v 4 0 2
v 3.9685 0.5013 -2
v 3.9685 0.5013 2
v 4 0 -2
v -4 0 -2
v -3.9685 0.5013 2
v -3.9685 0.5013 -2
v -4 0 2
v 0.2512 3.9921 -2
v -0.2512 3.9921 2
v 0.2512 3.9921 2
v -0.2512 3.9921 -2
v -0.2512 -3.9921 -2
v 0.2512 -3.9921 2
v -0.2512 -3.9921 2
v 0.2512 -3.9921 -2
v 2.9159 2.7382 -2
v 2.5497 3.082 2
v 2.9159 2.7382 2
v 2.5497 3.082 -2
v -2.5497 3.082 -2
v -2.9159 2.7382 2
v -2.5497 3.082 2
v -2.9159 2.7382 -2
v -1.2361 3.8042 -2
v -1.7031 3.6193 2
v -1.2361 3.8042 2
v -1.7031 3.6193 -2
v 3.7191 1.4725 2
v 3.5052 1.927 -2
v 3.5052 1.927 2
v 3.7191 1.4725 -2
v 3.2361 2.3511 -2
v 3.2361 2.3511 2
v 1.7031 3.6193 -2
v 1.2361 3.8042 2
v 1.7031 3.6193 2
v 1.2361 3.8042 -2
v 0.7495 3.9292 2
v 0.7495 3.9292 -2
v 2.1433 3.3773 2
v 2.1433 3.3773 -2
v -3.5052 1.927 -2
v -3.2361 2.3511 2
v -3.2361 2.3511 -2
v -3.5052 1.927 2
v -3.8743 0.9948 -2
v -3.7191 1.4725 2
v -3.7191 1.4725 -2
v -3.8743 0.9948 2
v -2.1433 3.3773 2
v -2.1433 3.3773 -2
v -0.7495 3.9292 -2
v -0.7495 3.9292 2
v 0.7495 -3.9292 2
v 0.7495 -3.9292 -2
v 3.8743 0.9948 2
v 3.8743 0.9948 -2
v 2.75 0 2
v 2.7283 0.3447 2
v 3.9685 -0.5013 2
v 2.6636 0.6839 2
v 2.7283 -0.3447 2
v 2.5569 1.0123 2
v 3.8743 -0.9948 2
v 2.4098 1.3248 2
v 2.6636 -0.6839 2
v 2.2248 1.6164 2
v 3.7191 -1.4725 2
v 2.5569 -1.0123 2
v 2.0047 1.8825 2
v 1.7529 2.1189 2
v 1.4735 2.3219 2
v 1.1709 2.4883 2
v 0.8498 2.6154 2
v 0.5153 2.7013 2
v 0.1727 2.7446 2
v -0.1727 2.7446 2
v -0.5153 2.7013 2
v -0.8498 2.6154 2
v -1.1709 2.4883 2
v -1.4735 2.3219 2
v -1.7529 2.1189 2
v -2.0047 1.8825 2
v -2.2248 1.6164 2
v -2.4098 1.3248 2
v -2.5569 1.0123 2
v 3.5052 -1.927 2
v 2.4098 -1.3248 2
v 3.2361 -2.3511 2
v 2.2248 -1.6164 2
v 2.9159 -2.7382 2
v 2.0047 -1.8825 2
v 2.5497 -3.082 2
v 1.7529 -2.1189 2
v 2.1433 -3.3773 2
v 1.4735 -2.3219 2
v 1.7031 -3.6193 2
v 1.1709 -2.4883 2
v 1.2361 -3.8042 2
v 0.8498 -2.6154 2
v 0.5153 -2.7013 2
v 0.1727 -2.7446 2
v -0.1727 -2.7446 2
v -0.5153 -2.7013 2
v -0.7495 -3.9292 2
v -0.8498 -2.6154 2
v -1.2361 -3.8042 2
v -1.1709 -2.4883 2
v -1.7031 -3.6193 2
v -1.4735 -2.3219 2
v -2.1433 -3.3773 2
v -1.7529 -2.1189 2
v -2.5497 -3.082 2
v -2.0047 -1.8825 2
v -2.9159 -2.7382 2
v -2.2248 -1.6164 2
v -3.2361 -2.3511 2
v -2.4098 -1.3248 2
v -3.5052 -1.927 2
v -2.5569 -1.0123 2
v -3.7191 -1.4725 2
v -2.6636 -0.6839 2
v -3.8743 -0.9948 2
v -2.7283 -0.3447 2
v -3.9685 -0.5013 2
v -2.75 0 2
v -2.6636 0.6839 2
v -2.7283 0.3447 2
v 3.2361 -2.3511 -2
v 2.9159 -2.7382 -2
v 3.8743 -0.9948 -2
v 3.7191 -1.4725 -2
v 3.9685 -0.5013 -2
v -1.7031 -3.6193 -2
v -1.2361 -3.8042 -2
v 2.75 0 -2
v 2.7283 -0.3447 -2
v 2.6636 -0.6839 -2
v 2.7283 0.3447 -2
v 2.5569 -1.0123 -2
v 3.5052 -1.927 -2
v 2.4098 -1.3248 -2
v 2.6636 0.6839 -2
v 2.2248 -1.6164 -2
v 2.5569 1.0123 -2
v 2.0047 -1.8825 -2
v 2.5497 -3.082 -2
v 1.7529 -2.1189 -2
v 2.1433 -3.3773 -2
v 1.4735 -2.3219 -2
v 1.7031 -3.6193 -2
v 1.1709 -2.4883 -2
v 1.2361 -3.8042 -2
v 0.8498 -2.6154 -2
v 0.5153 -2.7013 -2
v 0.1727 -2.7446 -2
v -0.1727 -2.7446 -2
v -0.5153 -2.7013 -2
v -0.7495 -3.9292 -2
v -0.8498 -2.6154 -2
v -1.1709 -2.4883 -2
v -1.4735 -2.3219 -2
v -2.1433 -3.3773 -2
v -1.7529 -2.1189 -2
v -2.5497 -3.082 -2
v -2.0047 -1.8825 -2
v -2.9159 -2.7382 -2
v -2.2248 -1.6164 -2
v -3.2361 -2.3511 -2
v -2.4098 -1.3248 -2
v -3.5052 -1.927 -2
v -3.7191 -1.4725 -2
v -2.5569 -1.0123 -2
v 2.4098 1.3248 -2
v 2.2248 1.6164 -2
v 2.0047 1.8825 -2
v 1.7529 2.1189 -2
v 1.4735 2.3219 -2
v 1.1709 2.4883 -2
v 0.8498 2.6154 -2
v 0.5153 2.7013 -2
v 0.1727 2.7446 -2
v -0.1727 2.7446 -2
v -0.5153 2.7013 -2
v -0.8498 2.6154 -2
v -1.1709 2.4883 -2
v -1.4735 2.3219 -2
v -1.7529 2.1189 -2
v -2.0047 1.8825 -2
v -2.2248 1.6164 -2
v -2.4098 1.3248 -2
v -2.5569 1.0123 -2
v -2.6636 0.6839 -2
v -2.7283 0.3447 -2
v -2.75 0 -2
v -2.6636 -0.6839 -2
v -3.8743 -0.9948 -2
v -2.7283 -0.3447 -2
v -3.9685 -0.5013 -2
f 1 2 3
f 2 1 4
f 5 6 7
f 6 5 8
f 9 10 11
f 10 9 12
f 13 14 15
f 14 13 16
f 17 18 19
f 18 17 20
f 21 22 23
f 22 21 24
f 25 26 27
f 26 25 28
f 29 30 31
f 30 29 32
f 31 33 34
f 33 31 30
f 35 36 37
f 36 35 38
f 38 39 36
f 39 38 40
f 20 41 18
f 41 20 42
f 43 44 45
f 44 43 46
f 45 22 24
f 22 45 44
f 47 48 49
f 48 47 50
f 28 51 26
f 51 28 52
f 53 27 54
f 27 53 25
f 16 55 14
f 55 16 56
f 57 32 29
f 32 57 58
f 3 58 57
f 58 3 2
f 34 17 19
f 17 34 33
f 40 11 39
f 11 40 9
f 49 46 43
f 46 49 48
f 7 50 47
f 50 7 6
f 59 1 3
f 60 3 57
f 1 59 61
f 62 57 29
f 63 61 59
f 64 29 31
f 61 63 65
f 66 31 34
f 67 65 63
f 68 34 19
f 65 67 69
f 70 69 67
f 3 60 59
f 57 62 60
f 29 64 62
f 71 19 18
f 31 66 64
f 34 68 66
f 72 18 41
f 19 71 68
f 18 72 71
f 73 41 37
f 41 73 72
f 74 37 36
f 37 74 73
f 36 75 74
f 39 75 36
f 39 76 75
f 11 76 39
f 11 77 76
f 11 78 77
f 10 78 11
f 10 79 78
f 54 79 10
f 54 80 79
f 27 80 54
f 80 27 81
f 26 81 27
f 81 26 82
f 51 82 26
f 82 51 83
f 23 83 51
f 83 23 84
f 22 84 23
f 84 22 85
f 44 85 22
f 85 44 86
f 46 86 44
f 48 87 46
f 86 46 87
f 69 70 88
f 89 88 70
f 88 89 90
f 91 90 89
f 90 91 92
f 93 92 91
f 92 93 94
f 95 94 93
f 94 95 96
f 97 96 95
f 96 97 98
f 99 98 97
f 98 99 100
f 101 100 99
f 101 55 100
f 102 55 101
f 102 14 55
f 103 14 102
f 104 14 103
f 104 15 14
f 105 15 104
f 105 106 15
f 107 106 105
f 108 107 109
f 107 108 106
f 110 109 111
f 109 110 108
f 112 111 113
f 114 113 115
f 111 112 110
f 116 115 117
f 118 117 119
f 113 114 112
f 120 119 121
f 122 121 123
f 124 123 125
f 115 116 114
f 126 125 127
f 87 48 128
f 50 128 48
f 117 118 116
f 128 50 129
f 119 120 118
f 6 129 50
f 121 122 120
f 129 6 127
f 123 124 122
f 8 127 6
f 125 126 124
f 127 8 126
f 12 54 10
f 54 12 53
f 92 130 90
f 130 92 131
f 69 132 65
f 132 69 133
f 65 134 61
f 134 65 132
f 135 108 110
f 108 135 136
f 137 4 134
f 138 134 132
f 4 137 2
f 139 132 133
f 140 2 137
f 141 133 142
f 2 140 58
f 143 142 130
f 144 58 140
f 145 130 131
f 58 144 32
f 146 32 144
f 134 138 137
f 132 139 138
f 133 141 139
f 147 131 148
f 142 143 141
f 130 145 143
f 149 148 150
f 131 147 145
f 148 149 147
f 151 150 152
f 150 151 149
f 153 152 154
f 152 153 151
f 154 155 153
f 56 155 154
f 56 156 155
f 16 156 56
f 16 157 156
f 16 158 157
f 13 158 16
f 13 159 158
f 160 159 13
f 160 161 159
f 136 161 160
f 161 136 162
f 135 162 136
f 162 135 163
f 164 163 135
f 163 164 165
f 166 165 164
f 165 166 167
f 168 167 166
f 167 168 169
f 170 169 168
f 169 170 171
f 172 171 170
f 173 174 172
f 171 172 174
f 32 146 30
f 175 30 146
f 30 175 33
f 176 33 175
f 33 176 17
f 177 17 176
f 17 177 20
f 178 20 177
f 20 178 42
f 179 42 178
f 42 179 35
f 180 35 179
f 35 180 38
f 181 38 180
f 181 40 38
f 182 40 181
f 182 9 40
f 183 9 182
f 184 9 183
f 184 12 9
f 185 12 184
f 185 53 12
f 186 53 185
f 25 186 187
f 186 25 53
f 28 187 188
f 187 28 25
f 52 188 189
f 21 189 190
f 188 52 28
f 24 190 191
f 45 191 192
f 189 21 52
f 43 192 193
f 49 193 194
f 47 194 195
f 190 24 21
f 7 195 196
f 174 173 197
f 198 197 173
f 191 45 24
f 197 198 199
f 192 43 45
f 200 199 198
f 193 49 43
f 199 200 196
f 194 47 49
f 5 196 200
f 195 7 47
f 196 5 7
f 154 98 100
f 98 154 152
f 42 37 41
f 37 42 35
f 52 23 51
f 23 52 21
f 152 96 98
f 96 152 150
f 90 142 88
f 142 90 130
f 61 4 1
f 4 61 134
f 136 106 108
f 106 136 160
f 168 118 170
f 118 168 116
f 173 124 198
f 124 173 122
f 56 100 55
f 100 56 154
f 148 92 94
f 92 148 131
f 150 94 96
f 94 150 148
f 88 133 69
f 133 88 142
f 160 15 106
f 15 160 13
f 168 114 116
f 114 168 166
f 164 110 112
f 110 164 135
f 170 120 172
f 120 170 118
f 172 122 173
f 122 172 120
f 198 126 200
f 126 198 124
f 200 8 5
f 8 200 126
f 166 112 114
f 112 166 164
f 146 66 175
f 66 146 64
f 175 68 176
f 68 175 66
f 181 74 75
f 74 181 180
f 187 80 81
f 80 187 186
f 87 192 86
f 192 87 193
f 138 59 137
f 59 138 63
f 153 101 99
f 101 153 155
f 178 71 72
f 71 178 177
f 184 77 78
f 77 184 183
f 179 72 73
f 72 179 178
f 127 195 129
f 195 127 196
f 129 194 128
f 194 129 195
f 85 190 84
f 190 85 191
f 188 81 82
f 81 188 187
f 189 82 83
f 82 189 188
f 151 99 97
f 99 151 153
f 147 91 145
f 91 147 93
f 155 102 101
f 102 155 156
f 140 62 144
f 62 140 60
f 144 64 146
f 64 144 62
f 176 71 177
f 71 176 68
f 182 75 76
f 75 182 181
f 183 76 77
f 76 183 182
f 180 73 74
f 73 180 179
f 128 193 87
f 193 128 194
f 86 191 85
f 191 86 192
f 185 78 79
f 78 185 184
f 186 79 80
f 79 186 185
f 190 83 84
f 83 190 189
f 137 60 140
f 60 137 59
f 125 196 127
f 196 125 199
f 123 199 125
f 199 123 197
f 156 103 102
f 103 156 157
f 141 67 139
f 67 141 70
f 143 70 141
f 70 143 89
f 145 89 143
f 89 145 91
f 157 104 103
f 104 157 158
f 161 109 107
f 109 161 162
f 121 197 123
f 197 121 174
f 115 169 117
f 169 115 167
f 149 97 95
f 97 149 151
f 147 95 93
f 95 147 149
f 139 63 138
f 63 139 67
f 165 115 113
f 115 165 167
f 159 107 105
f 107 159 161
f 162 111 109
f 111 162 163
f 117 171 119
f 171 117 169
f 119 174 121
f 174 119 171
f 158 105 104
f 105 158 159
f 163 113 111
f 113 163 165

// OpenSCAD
$fn = 50;


difference() {
	union() {
		translate(v = [0, 0, -2.0000000000]) {
			cylinder(h = 4, r = 4.0000000000);
		}
	}
	union() {
		translate(v = [0, 0, -100.0000000000]) {
			cylinder(h = 200, r = 2.7500000000);
		}
	}
}
